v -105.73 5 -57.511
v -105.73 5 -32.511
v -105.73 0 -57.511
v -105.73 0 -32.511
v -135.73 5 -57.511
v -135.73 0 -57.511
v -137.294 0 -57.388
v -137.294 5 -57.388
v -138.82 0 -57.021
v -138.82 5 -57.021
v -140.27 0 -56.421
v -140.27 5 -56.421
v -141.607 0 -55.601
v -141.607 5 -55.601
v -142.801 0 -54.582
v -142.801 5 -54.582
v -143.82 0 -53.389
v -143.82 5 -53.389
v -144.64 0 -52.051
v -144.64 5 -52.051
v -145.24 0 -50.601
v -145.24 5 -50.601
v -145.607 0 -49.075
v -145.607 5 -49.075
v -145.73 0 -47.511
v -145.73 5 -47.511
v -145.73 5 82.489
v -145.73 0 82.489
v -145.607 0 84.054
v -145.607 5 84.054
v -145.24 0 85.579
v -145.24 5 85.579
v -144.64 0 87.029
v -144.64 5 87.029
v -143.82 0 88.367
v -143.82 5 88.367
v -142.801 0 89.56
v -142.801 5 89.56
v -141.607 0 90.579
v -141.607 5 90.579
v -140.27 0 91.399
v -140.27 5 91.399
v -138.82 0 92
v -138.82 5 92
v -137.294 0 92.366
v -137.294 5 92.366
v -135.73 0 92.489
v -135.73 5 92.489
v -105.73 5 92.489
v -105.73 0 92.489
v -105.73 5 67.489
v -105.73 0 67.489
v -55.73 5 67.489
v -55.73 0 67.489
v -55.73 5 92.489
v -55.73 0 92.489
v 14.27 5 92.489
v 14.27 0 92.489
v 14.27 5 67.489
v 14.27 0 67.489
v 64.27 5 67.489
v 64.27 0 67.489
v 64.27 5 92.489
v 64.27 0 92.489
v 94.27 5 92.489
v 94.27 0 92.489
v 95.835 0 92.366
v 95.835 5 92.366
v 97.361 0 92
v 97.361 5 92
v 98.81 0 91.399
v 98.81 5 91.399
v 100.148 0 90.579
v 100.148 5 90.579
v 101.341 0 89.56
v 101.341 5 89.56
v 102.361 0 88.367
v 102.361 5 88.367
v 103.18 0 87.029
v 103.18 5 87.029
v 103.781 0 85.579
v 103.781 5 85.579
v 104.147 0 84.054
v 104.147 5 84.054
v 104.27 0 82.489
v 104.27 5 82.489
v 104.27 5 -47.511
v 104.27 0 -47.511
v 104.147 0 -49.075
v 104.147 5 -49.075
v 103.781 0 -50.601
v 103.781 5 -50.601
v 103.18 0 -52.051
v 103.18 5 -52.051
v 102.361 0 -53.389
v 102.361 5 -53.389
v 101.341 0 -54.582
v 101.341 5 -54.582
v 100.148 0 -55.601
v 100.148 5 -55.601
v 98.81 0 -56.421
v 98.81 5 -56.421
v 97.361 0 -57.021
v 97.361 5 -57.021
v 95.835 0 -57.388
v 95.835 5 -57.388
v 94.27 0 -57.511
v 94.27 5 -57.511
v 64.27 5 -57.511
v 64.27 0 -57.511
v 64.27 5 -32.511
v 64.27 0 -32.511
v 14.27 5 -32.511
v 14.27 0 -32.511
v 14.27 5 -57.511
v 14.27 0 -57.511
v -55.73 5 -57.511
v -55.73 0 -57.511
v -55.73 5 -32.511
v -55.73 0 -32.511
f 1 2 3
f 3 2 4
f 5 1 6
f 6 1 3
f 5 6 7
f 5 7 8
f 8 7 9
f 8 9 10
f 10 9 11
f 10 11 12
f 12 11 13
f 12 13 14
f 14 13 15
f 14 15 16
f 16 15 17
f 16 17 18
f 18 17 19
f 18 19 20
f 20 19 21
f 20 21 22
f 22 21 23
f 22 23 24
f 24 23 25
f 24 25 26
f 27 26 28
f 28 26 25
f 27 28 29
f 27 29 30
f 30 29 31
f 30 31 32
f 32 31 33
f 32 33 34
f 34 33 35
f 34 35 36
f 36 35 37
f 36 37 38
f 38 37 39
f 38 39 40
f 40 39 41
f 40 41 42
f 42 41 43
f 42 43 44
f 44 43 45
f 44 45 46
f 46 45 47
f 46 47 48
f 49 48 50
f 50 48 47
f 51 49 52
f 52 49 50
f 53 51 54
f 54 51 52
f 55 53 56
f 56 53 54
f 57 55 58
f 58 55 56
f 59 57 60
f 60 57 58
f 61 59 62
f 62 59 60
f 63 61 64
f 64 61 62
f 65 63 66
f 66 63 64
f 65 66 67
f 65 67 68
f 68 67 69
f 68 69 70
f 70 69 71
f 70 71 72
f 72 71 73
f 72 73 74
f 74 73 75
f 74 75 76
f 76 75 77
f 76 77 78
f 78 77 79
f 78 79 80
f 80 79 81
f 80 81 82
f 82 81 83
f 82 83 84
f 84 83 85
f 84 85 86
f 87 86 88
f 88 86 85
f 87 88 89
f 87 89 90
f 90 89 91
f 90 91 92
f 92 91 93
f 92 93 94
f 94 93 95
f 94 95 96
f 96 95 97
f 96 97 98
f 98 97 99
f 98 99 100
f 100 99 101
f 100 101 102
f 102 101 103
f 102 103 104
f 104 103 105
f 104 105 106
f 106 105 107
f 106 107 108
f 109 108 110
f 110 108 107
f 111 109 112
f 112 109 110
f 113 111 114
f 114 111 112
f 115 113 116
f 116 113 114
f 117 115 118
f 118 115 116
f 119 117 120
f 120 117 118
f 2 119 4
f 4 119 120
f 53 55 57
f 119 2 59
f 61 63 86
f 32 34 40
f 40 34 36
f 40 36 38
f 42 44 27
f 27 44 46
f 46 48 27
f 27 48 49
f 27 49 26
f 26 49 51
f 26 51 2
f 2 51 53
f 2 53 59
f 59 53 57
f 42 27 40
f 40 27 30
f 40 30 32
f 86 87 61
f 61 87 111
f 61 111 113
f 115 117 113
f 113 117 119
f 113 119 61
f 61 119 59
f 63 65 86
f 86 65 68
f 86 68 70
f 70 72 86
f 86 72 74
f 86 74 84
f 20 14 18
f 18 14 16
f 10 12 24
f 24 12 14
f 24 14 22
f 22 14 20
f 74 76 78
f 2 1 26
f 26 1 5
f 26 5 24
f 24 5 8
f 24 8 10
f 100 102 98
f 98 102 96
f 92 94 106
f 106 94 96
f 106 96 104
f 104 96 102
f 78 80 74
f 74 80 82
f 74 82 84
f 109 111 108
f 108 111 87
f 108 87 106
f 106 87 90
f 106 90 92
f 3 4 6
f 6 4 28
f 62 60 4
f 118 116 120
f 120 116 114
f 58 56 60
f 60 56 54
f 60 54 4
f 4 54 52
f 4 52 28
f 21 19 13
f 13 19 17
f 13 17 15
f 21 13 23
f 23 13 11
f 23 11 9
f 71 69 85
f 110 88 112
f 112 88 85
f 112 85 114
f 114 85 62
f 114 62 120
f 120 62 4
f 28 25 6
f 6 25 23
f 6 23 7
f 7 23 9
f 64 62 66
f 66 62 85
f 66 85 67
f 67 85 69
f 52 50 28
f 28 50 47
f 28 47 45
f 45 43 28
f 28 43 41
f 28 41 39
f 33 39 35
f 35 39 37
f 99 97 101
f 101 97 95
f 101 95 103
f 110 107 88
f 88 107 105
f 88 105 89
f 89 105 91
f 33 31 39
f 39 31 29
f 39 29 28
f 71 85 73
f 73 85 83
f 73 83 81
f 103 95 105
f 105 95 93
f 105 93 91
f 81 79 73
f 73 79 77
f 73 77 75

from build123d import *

# Parameters (mm, degrees)
BOSS_EXTRUDE1_DEPTH = 5


with BuildPart() as part:
    # Sketch1 → Boss-Extrude1 (new body)
    with BuildSketch(Plane(origin=(0, 0, 0), x_dir=(1, 0, 0), z_dir=(0, 1, 0))):
        with BuildLine():
            Line((64.270386266, 57.510729614), (94.270386266, 57.510729614))
            ThreePointArc((94.270386266, 57.510729614), (101.341454078, 54.581797426), (104.270386266, 47.510729614))
            Line((104.270386266, 47.510729614), (104.270386266, -82.489270386))
            ThreePointArc((104.270386266, -82.489270386), (101.341454078, -89.560338198), (94.270386266, -92.489270386))
            Line((94.270386266, -92.489270386), (64.270386266, -92.489270386))
            Line((64.270386266, -92.489270386), (64.270386266, -67.489270386))
            Line((64.270386266, -67.489270386), (14.270386266, -67.489270386))
            Line((14.270386266, -67.489270386), (14.270386266, -92.489270386))
            Line((14.270386266, -92.489270386), (-55.729613734, -92.489270386))
            Line((-55.729613734, -92.489270386), (-55.729613734, -67.489270386))
            Line((-55.729613734, -67.489270386), (-105.729613734, -67.489270386))
            Line((-105.729613734, -67.489270386), (-105.729613734, -92.489270386))
            Line((-105.729613734, -92.489270386), (-135.729613734, -92.489270386))
            ThreePointArc((-135.729613734, -92.489270386), (-142.800681546, -89.560338198), (-145.729613734, -82.489270386))
            Line((-145.729613734, -82.489270386), (-145.729613734, 47.510729614))
            ThreePointArc((-145.729613734, 47.510729614), (-142.800681546, 54.581797426), (-135.729613734, 57.510729614))
            Line((-135.729613734, 57.510729614), (-105.729613734, 57.510729614))
            Line((-105.729613734, 57.510729614), (-105.729613734, 32.510729614))
            Line((-105.729613734, 32.510729614), (-55.729613734, 32.510729614))
            Line((-55.729613734, 32.510729614), (-55.729613734, 57.510729614))
            Line((-55.729613734, 57.510729614), (14.270386266, 57.510729614))
            Line((14.270386266, 57.510729614), (14.270386266, 32.510729614))
            Line((14.270386266, 32.510729614), (64.270386266, 32.510729614))
            Line((64.270386266, 32.510729614), (64.270386266, 57.510729614))
        make_face()
    extrude(amount=BOSS_EXTRUDE1_DEPTH)


solid = part.part
